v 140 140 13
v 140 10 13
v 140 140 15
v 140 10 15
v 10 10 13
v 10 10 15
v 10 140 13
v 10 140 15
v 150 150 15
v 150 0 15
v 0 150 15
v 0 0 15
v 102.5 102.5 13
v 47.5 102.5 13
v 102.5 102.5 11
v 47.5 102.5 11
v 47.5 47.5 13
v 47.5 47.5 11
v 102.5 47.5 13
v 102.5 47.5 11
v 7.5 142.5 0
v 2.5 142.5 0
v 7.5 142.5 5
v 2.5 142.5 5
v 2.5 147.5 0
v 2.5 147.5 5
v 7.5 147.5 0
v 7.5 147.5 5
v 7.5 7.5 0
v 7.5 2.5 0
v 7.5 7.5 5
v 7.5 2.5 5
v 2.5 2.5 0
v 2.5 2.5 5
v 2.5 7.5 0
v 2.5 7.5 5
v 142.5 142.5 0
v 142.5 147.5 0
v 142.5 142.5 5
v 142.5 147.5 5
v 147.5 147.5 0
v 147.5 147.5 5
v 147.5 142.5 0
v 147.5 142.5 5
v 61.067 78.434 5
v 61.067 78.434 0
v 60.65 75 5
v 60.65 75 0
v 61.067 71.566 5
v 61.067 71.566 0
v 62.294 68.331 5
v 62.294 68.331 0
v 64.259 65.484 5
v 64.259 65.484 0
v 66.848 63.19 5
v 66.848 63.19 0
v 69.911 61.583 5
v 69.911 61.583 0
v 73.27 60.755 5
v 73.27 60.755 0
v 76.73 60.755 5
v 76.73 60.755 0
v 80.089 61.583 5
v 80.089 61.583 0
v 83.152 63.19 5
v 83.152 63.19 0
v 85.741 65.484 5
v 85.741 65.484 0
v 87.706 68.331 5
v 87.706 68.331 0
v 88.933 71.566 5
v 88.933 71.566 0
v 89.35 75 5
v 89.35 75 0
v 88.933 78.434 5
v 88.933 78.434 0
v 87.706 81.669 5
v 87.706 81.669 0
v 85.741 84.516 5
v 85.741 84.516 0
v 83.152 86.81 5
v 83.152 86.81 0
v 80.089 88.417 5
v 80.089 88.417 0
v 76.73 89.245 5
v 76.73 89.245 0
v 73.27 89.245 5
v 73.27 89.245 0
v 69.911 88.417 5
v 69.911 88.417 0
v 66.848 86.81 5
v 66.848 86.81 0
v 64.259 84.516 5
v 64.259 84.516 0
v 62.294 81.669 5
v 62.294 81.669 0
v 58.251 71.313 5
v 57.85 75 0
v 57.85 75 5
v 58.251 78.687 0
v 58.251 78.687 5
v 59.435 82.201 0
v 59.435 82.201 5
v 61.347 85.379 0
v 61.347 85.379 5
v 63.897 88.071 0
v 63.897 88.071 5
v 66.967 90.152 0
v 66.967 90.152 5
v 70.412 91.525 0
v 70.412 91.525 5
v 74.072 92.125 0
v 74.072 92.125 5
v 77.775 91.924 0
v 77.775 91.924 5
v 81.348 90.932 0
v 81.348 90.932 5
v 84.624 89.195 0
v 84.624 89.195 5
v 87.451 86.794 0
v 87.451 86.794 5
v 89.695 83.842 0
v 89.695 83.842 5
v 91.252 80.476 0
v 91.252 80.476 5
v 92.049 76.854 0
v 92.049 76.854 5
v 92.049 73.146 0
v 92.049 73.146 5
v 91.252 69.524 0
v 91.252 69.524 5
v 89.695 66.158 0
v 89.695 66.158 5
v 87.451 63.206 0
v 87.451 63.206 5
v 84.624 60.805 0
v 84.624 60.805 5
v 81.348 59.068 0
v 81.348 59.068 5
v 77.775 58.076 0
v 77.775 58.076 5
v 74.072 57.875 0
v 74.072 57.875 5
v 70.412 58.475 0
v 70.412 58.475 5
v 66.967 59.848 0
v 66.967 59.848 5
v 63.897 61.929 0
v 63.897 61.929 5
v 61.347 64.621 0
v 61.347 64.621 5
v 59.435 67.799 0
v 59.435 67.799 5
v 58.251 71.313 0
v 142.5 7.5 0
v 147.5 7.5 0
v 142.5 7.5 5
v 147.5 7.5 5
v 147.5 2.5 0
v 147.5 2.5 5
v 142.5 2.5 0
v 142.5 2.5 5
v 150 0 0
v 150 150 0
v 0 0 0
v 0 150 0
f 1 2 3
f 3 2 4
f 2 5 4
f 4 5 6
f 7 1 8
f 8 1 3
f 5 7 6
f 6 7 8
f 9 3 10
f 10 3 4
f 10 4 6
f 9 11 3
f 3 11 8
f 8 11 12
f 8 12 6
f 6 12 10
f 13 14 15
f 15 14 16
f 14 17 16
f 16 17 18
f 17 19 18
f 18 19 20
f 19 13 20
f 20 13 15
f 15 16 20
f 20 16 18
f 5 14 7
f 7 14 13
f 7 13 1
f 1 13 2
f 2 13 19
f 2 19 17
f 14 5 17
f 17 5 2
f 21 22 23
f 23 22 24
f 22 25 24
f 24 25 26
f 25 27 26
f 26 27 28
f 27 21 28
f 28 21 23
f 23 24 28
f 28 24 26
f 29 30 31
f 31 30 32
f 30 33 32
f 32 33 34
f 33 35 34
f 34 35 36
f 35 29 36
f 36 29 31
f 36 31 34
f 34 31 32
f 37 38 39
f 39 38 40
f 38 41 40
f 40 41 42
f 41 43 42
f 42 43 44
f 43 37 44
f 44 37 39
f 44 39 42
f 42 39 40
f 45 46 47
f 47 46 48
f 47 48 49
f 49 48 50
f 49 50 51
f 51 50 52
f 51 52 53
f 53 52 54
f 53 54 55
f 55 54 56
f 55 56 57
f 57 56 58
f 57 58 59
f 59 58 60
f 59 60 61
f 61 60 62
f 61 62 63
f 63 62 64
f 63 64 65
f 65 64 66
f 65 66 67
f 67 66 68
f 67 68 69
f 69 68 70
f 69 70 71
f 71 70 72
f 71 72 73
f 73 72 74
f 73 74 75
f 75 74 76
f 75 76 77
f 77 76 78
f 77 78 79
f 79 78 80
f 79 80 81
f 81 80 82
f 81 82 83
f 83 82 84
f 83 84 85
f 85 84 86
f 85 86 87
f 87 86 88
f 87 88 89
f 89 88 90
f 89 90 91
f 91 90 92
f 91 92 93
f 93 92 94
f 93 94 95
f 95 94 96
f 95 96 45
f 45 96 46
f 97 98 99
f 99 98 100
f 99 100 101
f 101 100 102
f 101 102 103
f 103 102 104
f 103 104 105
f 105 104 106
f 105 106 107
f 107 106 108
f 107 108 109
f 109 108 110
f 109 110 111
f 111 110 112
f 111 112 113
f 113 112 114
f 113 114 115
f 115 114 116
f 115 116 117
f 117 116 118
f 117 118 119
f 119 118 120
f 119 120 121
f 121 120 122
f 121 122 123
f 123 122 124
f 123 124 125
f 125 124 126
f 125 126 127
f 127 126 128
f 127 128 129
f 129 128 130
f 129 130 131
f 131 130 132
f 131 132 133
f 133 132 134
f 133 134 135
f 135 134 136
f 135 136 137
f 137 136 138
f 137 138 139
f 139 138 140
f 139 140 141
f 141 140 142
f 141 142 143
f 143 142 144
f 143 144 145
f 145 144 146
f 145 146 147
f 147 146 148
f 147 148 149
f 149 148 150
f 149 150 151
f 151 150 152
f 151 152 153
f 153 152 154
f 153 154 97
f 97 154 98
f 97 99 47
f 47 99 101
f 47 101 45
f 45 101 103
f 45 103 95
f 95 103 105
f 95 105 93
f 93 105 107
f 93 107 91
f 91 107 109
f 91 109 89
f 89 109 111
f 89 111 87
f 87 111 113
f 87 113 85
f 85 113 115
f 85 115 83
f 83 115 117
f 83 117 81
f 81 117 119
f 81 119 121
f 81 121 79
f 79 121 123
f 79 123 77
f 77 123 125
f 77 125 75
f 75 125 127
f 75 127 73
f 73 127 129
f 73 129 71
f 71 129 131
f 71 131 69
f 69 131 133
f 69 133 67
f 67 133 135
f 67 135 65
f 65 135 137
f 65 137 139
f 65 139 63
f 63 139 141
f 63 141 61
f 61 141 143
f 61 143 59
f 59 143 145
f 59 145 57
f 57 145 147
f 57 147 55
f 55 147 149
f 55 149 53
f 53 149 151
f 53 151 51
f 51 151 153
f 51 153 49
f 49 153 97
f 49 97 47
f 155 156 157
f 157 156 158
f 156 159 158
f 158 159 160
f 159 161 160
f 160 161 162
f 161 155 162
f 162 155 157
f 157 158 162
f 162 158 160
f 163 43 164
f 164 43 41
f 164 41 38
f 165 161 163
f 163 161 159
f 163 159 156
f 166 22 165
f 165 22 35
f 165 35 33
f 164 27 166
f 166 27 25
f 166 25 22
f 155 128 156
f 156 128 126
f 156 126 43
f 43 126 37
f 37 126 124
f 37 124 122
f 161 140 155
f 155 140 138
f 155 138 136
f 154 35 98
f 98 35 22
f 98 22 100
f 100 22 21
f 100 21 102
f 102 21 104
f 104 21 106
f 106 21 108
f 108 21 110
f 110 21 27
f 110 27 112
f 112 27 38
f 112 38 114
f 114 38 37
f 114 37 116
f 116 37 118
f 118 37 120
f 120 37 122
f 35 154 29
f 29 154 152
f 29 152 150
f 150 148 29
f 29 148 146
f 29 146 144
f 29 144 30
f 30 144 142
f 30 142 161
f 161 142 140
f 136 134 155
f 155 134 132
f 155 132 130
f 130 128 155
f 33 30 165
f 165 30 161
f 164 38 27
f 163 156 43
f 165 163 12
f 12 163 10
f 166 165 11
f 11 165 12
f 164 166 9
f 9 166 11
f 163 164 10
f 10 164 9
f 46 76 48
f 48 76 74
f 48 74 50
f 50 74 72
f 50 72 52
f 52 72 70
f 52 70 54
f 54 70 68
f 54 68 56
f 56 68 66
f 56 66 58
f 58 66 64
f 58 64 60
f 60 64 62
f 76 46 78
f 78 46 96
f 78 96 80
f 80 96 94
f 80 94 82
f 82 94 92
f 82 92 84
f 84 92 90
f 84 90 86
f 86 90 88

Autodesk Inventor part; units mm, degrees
ref_plane "YZ Plane" through (0, 0, 0) normal (1, 0, 0) x (0, 1, 0)
ref_plane "XZ Plane" through (0, 0, 0) normal (0, 1, 0) x (-1, 0, 0)
ref_plane "XY Plane" through (0, 0, 0) normal (0, 0, 1) x (1, 0, 0)
sketch "Sketch4" plane through (0, 0, 0) normal (0, 0, 1) x (1, 0, 0)
  line L0 (0, 0) -> (150, 0)
  line L1 (150, 0) -> (150, 150)
  line L2 (150, 150) -> (0, 150)
  line L3 (0, 150) -> (0, 0)
  dimension "d34" = 150
  dimension "d35" = 150
extrude "Extrusion4" add sketch "Sketch4" along normal blind 10
sketch "Sketch5" plane through (0, 0, 10) normal (0, 0, 1) x (1, 0, 0)
  line L0 (10, 10) -> (140, 10)
  line L1 (140, 10) -> (140, 140)
  line L2 (140, 140) -> (10, 140)
  line L3 (10, 140) -> (10, 10)
  point P0 (0, 0)
  dimension "d38" = 130
  dimension "d39" = 130
extrude "Extrusion5" cut sketch "Sketch5" against normal blind 2
sketch "Sketch6" plane through (0, 0, 0) normal (0, 0, -1) x (-1, 0, 0)
  circle A0 centre (-75, 75) radius 14.35
  circle A1 centre (-75, 75) radius 17.15
  line L0 (-147.5, 2.5) -> (-142.5, 2.5)
  line L1 (-142.5, 2.5) -> (-142.5, 7.5)
  line L2 (-142.5, 7.5) -> (-147.5, 7.5)
  line L3 (-147.5, 7.5) -> (-147.5, 2.5)
  line L4 (-2.5, 2.5) -> (-7.5, 2.5)
  line L5 (-7.5, 2.5) -> (-7.5, 7.5)
  line L6 (-7.5, 7.5) -> (-2.5, 7.5)
  line L7 (-2.5, 7.5) -> (-2.5, 2.5)
  line L8 (-147.5, 147.5) -> (-142.5, 147.5)
  line L9 (-142.5, 147.5) -> (-142.5, 142.5)
  line L10 (-142.5, 142.5) -> (-147.5, 142.5)
  line L11 (-147.5, 142.5) -> (-147.5, 147.5)
  line L12 (-2.5, 147.5) -> (-7.5, 147.5)
  line L13 (-7.5, 147.5) -> (-7.5, 142.5)
  line L14 (-7.5, 142.5) -> (-2.5, 142.5)
  line L15 (-2.5, 142.5) -> (-2.5, 147.5)
  point P0 (0, 0)
  dimension "d42" = 28.7
  dimension "d43" = 34.3
  dimension "d46" = 5
  dimension "d47" = 5
  dimension "d48" = 5
  dimension "d49" = 5
  dimension "d50" = 5
  dimension "d51" = 5
  dimension "d52" = 5
  dimension "d53" = 5
extrude "Extrusion7" cut sketch "Sketch6" against normal blind 5
sketch "Sketch7" plane through (0, 0, 8) normal (0, 0, 1) x (1, 0, 0)
  line L0 (47.5, 102.5) -> (102.5, 102.5)
  line L1 (102.5, 102.5) -> (102.5, 47.5)
  line L2 (102.5, 47.5) -> (47.5, 47.5)
  line L3 (47.5, 47.5) -> (47.5, 102.5)
  point P0 (0, 0)
  dimension "d58" = 55
  dimension "d59" = 55
extrude "Extrusion8" cut sketch "Sketch7" against normal blind 2
sketch "Sketch9" plane through (0, 0, 6) normal (0, 0, 1) x (1, 0, 0)
  line L0 (47.5, 47.5) -> (47.5, 102.5) projected
  line L1 (47.5, 47.5) -> (102.5, 47.5)
  line L2 (102.5, 47.5) -> (102.5, 102.5)
  line L3 (102.5, 102.5) -> (47.5, 102.5)
  line L4 (47.5, 102.5) -> (47.5, 47.5)
  point P0 (0, 0)
  dimension "d68" = 55
  dimension "d69" = 55
extrude "Extrusion10" add sketch "Sketch9" along normal blind 2
sketch "Sketch10" plane through (0, 0, 8) normal (0, 0, 1) x (1, 0, 0)
  line L0 (37.5, 37.5) -> (112.5, 37.5) projected
  line L1 (112.5, 37.5) -> (112.5, 112.5) projected
  line L2 (37.5, 37.5) -> (112.5, 37.5)
  line L3 (112.5, 37.5) -> (112.5, 112.5)
  line L4 (112.5, 112.5) -> (37.5, 112.5)
  line L5 (37.5, 112.5) -> (37.5, 37.5)
  point P0 (0, 0)
  dimension "d72" = 75
  dimension "d73" = 75
extrude "Extrusion11" add sketch "Sketch10" along normal blind 5
sketch "Sketch11" plane through (0, 0, 13) normal (0, 0, 1) x (1, 0, 0)
  line L0 (47.5, 47.5) -> (102.5, 47.5)
  line L1 (102.5, 47.5) -> (102.5, 102.5)
  line L2 (102.5, 102.5) -> (47.5, 102.5)
  line L3 (47.5, 102.5) -> (47.5, 47.5)
  point P0 (0, 0)
  dimension "d76" = 55
  dimension "d77" = 55
extrude "Extrusion12" cut sketch "Sketch11" against normal blind 2
sketch "Sketch12" plane through (0, 0, 11) normal (0, 0, 1) x (1, 0, 0)
  circle A0 centre (75, 75) radius 14.35
  circle A1 centre (75, 75) radius 17.15
  point P0 (0, 0)
sketch "Sketch13" plane through (0, 0, 8) normal (0, 0, 1) x (1, 0, 0)
  line L0 (140, 140) -> (140, 10) projected
  line L1 (10, 140) -> (140, 140)
  line L2 (140, 140) -> (140, 10)
  line L3 (140, 10) -> (10, 10)
  line L4 (10, 10) -> (10, 140)
  line L5 (37.5, 37.5) -> (37.5, 112.5) projected
  line L6 (112.5, 112.5) -> (112.5, 37.5) projected
  line L7 (37.5, 112.5) -> (112.5, 112.5)
  line L8 (112.5, 112.5) -> (112.5, 37.5)
  line L9 (112.5, 37.5) -> (37.5, 37.5)
  line L10 (37.5, 37.5) -> (37.5, 112.5)
  point P0 (0, 0)
extrude "Extrusion13" add sketch "Sketch13" along normal blind 5
sketch "Sketch15" plane through (0, 0, 10) normal (0, 0, 1) x (1, 0, 0)
  line L0 (0, 0) -> (150, 0)
  line L1 (150, 0) -> (150, 150)
  line L2 (150, 150) -> (0, 150)
  line L3 (0, 150) -> (0, 0)
  line L4 (10, 140) -> (10, 10) projected
  line L5 (10, 140) -> (140, 140)
  line L6 (140, 140) -> (140, 10)
  line L7 (140, 10) -> (10, 10)
  line L8 (10, 10) -> (10, 140)
  dimension "d86" = 150
  dimension "d87" = 150
  dimension "d88" = 130
  dimension "d89" = 130
extrude "Extrusion14" add sketch "Sketch15" along normal blind 5
properties part number "Elbow_Both_Marker_TestFit_V2"
